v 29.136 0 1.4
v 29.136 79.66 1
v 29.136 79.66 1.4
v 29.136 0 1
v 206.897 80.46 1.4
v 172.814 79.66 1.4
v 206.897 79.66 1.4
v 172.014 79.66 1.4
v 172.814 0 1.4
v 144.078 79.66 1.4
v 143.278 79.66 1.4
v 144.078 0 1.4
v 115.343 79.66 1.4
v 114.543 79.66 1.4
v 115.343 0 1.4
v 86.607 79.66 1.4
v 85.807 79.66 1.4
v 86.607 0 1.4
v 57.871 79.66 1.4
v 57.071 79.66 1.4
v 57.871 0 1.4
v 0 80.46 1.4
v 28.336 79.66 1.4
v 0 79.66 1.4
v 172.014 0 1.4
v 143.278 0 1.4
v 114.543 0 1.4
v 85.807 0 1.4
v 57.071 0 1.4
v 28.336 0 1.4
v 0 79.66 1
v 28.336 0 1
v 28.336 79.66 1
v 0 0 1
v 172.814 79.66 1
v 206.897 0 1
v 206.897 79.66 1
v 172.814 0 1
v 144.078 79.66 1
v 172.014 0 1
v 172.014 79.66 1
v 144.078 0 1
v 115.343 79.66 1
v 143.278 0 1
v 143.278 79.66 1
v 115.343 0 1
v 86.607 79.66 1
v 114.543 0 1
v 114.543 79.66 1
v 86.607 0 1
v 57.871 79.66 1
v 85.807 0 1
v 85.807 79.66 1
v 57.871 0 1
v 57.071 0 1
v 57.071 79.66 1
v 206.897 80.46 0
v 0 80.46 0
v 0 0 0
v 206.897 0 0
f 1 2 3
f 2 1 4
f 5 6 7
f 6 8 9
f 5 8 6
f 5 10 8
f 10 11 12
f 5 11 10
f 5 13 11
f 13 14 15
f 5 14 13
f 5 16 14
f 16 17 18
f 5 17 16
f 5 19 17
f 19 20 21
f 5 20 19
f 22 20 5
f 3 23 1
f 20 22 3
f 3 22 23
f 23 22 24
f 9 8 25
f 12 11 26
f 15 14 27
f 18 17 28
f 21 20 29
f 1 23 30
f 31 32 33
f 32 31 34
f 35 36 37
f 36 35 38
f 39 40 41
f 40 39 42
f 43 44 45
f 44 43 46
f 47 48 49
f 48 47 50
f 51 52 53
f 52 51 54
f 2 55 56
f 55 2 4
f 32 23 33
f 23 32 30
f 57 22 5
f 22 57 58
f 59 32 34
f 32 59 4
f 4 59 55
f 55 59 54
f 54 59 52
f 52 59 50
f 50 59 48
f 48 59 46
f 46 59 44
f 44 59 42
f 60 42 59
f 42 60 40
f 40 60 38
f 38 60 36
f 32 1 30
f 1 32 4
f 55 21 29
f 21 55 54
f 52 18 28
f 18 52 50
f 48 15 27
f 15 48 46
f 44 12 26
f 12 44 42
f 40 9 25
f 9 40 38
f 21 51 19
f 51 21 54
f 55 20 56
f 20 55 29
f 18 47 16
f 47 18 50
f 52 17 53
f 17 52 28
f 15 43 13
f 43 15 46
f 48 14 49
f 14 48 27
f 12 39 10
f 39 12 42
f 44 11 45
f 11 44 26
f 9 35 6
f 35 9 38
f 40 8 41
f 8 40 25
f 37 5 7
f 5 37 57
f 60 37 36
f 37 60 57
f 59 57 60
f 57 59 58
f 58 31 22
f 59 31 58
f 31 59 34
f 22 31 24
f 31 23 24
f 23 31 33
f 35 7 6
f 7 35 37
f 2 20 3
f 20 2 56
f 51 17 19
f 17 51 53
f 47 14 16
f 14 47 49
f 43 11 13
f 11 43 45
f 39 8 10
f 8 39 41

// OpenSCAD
/*
 * PROMPT: Cities-Skylines-style police station parking lot in H0 scale (1:87).
 * Flat concrete slab in front of the main building (garage has its own vehicle
 * entrance), painted parking space divider lines running front-to-back and a
 * front boundary line. FDM printable flat slab.
 */

$fn = 32;
S = 1 / 87;

// ── PARKING LOT ───────────────────────────────────────────────────────────────
// width matches the main building only (garage has its own vehicle entrance)
park_total_w_real = 18000;  // 206.9 mm H0
park_d_real       =  7000;  //  80.5 mm H0
park_space_real   =  2500;  //  28.7 mm H0 (one parking space width)

slab_t       = 1.0;
park_line_w  = 0.8;
park_line_h  = 0.4;

// ── DERIVED ───────────────────────────────────────────────────────────────────
park_total_w = park_total_w_real * S;
park_d       = park_d_real * S;
park_space_w = park_space_real * S;

// ── MODULES ───────────────────────────────────────────────────────────────────

module parking_lot() {
    // concrete slab
    cube([park_total_w, park_d, slab_t]);

    // space divider lines (run Y direction)
    n_lines = floor(park_total_w / park_space_w) - 1;
    for (i = [1 : n_lines]) {
        translate([i * park_space_w - park_line_w/2, 0, slab_t])
            cube([park_line_w, park_d, park_line_h]);
    }

    // front boundary line
    translate([0, park_d - park_line_w, slab_t])
        cube([park_total_w, park_line_w, park_line_h]);
}

// ── ASSEMBLY ──────────────────────────────────────────────────────────────────
parking_lot();
